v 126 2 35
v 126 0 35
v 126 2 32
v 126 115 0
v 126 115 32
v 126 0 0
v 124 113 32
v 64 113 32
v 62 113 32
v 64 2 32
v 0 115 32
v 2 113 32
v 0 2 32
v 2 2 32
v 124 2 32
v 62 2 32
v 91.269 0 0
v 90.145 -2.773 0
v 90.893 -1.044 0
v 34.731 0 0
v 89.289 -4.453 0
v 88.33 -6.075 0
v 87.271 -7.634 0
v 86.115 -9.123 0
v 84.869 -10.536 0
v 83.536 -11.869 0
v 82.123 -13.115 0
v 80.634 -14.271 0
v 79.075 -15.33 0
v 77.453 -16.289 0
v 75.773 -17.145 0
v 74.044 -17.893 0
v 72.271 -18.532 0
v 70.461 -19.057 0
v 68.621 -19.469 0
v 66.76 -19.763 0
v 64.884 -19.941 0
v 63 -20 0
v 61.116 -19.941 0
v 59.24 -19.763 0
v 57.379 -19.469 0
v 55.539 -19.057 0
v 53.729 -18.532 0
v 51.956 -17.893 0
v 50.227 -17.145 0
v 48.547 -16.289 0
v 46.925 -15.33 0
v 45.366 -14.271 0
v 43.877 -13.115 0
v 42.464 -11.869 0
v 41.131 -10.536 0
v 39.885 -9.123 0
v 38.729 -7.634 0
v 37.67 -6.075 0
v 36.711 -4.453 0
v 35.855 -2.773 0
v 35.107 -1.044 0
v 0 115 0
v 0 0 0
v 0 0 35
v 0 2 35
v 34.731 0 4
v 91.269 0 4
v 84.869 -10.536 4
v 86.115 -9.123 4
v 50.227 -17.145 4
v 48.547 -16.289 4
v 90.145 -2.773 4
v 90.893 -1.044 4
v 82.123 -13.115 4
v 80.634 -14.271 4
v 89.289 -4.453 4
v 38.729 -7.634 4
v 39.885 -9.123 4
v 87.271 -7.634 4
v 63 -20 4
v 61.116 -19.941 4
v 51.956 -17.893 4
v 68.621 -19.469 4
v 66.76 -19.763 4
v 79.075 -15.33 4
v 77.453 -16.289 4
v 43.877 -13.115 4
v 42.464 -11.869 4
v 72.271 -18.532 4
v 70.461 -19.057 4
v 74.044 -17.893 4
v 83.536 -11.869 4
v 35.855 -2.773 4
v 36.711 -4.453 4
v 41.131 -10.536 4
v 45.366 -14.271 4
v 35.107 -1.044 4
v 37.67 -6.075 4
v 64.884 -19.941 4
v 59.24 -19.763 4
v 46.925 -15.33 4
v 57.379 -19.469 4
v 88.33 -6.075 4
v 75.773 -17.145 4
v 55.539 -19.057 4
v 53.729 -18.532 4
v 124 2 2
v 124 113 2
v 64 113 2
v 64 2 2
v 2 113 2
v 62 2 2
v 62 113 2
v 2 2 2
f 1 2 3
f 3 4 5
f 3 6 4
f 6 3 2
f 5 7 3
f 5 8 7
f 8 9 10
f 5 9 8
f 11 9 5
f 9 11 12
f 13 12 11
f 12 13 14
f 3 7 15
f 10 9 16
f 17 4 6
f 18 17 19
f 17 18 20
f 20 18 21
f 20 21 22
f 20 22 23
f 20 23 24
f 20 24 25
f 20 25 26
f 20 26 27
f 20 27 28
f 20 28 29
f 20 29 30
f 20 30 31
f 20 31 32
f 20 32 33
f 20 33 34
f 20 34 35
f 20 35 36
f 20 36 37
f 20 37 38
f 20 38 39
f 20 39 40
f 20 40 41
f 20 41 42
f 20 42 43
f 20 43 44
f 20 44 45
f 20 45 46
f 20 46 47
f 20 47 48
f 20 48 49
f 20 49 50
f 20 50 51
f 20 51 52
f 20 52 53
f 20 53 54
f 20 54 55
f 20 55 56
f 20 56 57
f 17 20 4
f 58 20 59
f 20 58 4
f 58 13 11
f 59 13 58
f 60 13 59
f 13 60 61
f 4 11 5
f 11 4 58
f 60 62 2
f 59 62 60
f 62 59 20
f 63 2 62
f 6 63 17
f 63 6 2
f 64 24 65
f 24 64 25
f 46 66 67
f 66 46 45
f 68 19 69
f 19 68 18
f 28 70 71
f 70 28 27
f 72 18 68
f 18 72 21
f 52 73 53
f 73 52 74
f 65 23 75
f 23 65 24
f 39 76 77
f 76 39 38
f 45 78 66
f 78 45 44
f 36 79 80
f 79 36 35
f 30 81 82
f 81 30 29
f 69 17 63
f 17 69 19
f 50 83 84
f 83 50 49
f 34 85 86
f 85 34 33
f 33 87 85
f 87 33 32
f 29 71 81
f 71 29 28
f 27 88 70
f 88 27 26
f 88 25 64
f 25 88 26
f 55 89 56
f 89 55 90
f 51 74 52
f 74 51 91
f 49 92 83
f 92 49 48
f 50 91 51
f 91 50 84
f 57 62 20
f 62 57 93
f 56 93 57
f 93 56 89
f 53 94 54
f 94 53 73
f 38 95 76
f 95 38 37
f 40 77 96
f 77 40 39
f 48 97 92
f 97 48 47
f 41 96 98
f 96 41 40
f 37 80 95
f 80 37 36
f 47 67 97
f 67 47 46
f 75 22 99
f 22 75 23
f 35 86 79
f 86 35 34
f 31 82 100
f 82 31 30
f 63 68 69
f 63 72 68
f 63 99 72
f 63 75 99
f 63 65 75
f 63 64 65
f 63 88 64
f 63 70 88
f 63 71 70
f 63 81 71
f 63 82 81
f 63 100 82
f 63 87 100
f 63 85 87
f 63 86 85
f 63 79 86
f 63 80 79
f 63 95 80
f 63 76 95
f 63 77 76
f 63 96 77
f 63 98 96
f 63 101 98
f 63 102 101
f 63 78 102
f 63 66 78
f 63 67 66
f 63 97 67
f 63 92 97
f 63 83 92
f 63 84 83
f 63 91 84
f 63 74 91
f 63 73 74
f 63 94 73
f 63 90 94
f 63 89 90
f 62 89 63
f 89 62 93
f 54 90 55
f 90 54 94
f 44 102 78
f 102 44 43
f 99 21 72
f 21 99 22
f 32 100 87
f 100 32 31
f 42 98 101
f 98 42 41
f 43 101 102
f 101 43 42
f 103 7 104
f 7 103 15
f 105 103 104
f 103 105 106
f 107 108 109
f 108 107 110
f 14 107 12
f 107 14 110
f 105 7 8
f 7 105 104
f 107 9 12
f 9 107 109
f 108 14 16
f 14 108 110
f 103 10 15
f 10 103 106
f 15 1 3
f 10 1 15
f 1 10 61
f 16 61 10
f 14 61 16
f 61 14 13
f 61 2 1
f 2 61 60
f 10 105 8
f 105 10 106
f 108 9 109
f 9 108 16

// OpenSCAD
h1 = 32.0;
h2 = 35.0;
lg = 115.0;
wi = 126.0;
$fn = 100;

union() {
    difference(){
        union() {
            cube([wi, lg, h1], center = false);
            translate([wi/2, 10, 0]) {
                cylinder(h=4, r=30, center = false);
            }
        }
        translate([2,2,2]){
            cube([wi-4, lg-4, h1], center = false);
        }
    };
    cube([wi, 2, h2], center = false);
    translate([wi/2-1, 0, 0]){
        cube([2, lg, h1], center = false);
    }
};
